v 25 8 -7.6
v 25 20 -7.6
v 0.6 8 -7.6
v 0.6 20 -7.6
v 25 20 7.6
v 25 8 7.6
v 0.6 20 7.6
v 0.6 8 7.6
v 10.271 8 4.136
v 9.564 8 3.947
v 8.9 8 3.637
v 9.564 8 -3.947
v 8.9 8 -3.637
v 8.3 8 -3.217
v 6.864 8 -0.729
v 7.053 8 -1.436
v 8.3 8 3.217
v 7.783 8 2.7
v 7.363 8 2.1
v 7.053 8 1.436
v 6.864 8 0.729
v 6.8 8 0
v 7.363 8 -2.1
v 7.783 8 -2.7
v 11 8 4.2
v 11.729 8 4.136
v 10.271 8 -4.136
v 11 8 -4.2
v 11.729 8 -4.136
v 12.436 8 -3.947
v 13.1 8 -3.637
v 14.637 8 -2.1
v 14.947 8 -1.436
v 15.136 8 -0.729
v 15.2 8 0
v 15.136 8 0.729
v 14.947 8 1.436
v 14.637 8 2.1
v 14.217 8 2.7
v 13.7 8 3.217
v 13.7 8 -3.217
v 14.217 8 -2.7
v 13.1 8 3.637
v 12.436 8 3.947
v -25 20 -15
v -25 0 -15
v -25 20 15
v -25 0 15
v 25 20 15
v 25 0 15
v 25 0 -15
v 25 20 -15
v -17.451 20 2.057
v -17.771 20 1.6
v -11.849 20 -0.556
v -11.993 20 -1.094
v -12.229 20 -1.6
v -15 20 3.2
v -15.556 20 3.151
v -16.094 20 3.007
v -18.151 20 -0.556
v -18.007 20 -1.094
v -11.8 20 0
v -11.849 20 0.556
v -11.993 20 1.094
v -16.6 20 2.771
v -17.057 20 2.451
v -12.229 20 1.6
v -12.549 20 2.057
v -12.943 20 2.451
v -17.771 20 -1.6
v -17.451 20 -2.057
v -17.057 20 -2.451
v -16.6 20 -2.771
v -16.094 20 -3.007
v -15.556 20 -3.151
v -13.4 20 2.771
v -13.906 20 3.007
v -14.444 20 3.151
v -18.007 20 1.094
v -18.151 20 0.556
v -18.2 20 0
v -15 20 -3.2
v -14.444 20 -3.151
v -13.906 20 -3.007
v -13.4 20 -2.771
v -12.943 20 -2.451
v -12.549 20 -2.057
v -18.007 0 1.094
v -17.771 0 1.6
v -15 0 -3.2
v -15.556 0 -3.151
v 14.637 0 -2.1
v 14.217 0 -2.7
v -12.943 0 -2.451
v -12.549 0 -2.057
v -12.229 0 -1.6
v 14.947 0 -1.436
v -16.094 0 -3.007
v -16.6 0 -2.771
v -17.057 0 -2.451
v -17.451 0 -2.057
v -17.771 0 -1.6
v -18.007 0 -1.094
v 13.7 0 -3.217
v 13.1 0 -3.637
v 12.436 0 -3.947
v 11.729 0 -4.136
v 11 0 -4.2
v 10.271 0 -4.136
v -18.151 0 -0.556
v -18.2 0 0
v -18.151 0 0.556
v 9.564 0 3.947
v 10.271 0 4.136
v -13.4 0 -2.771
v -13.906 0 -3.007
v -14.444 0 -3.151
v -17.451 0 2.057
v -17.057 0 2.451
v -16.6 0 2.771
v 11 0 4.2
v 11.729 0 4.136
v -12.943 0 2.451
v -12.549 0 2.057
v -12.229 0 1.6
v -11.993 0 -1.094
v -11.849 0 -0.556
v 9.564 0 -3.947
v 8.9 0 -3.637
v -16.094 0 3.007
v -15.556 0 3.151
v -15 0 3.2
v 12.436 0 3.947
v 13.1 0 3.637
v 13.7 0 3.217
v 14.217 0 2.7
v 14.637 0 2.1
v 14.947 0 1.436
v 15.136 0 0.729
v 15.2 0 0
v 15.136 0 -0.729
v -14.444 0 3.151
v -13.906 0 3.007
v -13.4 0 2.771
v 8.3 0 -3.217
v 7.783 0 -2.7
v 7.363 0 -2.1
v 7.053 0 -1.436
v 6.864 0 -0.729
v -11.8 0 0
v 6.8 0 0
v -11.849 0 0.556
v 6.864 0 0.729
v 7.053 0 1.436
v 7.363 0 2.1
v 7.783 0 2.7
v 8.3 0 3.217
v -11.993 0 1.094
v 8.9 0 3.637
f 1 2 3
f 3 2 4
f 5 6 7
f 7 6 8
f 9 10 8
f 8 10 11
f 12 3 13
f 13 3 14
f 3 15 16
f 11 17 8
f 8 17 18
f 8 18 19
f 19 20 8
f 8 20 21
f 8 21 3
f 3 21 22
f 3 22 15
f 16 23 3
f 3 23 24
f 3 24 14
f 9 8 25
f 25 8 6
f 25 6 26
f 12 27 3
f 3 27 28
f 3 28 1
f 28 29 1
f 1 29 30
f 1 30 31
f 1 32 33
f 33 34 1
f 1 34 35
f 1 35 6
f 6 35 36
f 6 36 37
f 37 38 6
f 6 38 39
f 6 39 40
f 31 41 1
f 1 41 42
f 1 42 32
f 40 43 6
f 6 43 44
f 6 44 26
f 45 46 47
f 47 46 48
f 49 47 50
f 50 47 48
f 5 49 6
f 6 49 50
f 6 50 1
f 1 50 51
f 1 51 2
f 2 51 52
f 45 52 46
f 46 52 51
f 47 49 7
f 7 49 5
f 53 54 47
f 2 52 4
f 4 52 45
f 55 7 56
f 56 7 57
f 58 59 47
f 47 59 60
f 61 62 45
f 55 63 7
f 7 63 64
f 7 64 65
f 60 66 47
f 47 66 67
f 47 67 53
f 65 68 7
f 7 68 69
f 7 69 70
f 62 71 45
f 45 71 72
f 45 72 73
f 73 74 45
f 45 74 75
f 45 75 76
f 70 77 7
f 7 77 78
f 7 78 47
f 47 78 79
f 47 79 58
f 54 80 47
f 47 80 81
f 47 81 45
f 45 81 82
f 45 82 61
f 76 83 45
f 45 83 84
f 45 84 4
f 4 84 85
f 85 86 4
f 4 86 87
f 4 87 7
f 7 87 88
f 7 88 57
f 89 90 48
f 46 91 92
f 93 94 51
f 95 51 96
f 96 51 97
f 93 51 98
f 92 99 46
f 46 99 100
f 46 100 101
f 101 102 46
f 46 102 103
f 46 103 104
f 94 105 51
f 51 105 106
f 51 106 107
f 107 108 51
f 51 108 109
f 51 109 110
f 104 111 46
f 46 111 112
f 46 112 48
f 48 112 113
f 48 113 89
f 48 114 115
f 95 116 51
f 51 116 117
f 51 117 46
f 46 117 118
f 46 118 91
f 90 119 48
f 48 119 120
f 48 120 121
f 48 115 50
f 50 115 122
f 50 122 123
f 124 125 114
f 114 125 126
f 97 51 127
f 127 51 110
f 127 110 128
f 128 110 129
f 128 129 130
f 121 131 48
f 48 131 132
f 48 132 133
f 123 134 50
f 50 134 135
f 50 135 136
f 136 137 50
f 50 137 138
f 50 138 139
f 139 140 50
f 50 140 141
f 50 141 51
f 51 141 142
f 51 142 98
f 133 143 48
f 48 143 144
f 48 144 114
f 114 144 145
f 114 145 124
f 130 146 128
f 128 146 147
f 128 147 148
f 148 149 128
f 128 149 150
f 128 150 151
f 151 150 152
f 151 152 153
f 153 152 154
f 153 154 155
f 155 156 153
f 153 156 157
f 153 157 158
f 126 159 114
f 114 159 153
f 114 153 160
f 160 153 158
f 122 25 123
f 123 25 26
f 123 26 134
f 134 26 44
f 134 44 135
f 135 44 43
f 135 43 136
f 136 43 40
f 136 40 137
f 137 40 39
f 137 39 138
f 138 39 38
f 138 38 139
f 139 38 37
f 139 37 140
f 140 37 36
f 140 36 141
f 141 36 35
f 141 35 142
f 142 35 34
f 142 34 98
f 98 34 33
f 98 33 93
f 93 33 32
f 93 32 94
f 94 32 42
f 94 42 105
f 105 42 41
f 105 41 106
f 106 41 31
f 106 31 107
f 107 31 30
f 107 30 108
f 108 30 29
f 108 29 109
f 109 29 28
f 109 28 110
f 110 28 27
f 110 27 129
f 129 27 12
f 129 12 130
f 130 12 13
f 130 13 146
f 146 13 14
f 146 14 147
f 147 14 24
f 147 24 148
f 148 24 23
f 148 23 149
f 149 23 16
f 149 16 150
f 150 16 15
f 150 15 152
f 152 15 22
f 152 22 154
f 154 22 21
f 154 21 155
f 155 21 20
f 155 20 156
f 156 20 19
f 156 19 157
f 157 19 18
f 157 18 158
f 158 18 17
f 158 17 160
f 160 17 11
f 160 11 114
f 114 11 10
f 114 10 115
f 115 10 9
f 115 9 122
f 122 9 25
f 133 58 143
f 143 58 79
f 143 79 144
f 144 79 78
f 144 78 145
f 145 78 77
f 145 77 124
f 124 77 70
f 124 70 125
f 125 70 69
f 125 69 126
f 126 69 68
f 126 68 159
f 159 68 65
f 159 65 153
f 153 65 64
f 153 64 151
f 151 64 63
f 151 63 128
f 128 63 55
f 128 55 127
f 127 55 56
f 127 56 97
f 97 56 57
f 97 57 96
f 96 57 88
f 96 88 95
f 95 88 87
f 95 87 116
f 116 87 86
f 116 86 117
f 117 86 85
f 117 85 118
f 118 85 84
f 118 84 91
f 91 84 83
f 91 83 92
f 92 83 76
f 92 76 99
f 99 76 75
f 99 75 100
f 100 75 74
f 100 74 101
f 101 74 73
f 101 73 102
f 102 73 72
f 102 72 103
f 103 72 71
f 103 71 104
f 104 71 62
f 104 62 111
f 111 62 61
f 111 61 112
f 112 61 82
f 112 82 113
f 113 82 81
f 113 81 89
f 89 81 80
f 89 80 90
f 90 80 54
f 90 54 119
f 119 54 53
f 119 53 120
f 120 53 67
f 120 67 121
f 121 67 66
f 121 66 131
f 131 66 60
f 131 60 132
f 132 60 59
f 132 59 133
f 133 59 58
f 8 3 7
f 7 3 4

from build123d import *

# Parameters (mm, degrees)
SKETCH1_W           = 50
SKETCH1_H           = 30
BOSS_EXTRUDE1_DEPTH = 20
SKETCH3_W           = 15.2
SKETCH3_H           = 12
CUT_EXTRUDE1_DEPTH  = 51
SKETCH5_R           = 4.2
SKETCH5_R_2         = 3.2
CUT_EXTRUDE2_DEPTH  = 9
SKETCH6_W           = 25.6
SKETCH6_H           = 15.2
SKETCH6_R           = 3.2
BOSS_EXTRUDE2_DEPTH = 12


with BuildPart() as part:
    # Sketch1 → Boss-Extrude1 (new body)
    with BuildSketch(Plane(origin=(0, 0, 0), x_dir=(1, 0, 0), z_dir=(0, 1, 0))):
        Rectangle(SKETCH1_W, SKETCH1_H)
    extrude(amount=BOSS_EXTRUDE1_DEPTH)

    # Sketch3 → Cut-Extrude1 (cut, through all)
    with BuildSketch(Plane.ZY.offset(25)):
        with Locations((0, 14)):
            Rectangle(SKETCH3_W, SKETCH3_H)
    extrude(amount=-CUT_EXTRUDE1_DEPTH, mode=Mode.SUBTRACT)

    # Sketch5 → Cut-Extrude2 (cut, through all)
    with BuildSketch(Plane(origin=(0, 8, 0), x_dir=(1, 0, 0), z_dir=(0, 1, 0))):
        with Locations((11, 0)):
            Circle(SKETCH5_R)
        with Locations((-15, 0)):
            Circle(SKETCH5_R_2)
    extrude(amount=-CUT_EXTRUDE2_DEPTH, mode=Mode.SUBTRACT)

    # Sketch6 → Boss-Extrude2 (add)
    with BuildSketch(Plane(origin=(0, 8, 0), x_dir=(1, 0, 0), z_dir=(0, 1, 0))):
        with Locations((-12.2, 0)):
            Rectangle(SKETCH6_W, SKETCH6_H)
        with Locations((-15, 0)):
            Circle(SKETCH6_R, mode=Mode.SUBTRACT)
    extrude(amount=BOSS_EXTRUDE2_DEPTH)


solid = part.part
